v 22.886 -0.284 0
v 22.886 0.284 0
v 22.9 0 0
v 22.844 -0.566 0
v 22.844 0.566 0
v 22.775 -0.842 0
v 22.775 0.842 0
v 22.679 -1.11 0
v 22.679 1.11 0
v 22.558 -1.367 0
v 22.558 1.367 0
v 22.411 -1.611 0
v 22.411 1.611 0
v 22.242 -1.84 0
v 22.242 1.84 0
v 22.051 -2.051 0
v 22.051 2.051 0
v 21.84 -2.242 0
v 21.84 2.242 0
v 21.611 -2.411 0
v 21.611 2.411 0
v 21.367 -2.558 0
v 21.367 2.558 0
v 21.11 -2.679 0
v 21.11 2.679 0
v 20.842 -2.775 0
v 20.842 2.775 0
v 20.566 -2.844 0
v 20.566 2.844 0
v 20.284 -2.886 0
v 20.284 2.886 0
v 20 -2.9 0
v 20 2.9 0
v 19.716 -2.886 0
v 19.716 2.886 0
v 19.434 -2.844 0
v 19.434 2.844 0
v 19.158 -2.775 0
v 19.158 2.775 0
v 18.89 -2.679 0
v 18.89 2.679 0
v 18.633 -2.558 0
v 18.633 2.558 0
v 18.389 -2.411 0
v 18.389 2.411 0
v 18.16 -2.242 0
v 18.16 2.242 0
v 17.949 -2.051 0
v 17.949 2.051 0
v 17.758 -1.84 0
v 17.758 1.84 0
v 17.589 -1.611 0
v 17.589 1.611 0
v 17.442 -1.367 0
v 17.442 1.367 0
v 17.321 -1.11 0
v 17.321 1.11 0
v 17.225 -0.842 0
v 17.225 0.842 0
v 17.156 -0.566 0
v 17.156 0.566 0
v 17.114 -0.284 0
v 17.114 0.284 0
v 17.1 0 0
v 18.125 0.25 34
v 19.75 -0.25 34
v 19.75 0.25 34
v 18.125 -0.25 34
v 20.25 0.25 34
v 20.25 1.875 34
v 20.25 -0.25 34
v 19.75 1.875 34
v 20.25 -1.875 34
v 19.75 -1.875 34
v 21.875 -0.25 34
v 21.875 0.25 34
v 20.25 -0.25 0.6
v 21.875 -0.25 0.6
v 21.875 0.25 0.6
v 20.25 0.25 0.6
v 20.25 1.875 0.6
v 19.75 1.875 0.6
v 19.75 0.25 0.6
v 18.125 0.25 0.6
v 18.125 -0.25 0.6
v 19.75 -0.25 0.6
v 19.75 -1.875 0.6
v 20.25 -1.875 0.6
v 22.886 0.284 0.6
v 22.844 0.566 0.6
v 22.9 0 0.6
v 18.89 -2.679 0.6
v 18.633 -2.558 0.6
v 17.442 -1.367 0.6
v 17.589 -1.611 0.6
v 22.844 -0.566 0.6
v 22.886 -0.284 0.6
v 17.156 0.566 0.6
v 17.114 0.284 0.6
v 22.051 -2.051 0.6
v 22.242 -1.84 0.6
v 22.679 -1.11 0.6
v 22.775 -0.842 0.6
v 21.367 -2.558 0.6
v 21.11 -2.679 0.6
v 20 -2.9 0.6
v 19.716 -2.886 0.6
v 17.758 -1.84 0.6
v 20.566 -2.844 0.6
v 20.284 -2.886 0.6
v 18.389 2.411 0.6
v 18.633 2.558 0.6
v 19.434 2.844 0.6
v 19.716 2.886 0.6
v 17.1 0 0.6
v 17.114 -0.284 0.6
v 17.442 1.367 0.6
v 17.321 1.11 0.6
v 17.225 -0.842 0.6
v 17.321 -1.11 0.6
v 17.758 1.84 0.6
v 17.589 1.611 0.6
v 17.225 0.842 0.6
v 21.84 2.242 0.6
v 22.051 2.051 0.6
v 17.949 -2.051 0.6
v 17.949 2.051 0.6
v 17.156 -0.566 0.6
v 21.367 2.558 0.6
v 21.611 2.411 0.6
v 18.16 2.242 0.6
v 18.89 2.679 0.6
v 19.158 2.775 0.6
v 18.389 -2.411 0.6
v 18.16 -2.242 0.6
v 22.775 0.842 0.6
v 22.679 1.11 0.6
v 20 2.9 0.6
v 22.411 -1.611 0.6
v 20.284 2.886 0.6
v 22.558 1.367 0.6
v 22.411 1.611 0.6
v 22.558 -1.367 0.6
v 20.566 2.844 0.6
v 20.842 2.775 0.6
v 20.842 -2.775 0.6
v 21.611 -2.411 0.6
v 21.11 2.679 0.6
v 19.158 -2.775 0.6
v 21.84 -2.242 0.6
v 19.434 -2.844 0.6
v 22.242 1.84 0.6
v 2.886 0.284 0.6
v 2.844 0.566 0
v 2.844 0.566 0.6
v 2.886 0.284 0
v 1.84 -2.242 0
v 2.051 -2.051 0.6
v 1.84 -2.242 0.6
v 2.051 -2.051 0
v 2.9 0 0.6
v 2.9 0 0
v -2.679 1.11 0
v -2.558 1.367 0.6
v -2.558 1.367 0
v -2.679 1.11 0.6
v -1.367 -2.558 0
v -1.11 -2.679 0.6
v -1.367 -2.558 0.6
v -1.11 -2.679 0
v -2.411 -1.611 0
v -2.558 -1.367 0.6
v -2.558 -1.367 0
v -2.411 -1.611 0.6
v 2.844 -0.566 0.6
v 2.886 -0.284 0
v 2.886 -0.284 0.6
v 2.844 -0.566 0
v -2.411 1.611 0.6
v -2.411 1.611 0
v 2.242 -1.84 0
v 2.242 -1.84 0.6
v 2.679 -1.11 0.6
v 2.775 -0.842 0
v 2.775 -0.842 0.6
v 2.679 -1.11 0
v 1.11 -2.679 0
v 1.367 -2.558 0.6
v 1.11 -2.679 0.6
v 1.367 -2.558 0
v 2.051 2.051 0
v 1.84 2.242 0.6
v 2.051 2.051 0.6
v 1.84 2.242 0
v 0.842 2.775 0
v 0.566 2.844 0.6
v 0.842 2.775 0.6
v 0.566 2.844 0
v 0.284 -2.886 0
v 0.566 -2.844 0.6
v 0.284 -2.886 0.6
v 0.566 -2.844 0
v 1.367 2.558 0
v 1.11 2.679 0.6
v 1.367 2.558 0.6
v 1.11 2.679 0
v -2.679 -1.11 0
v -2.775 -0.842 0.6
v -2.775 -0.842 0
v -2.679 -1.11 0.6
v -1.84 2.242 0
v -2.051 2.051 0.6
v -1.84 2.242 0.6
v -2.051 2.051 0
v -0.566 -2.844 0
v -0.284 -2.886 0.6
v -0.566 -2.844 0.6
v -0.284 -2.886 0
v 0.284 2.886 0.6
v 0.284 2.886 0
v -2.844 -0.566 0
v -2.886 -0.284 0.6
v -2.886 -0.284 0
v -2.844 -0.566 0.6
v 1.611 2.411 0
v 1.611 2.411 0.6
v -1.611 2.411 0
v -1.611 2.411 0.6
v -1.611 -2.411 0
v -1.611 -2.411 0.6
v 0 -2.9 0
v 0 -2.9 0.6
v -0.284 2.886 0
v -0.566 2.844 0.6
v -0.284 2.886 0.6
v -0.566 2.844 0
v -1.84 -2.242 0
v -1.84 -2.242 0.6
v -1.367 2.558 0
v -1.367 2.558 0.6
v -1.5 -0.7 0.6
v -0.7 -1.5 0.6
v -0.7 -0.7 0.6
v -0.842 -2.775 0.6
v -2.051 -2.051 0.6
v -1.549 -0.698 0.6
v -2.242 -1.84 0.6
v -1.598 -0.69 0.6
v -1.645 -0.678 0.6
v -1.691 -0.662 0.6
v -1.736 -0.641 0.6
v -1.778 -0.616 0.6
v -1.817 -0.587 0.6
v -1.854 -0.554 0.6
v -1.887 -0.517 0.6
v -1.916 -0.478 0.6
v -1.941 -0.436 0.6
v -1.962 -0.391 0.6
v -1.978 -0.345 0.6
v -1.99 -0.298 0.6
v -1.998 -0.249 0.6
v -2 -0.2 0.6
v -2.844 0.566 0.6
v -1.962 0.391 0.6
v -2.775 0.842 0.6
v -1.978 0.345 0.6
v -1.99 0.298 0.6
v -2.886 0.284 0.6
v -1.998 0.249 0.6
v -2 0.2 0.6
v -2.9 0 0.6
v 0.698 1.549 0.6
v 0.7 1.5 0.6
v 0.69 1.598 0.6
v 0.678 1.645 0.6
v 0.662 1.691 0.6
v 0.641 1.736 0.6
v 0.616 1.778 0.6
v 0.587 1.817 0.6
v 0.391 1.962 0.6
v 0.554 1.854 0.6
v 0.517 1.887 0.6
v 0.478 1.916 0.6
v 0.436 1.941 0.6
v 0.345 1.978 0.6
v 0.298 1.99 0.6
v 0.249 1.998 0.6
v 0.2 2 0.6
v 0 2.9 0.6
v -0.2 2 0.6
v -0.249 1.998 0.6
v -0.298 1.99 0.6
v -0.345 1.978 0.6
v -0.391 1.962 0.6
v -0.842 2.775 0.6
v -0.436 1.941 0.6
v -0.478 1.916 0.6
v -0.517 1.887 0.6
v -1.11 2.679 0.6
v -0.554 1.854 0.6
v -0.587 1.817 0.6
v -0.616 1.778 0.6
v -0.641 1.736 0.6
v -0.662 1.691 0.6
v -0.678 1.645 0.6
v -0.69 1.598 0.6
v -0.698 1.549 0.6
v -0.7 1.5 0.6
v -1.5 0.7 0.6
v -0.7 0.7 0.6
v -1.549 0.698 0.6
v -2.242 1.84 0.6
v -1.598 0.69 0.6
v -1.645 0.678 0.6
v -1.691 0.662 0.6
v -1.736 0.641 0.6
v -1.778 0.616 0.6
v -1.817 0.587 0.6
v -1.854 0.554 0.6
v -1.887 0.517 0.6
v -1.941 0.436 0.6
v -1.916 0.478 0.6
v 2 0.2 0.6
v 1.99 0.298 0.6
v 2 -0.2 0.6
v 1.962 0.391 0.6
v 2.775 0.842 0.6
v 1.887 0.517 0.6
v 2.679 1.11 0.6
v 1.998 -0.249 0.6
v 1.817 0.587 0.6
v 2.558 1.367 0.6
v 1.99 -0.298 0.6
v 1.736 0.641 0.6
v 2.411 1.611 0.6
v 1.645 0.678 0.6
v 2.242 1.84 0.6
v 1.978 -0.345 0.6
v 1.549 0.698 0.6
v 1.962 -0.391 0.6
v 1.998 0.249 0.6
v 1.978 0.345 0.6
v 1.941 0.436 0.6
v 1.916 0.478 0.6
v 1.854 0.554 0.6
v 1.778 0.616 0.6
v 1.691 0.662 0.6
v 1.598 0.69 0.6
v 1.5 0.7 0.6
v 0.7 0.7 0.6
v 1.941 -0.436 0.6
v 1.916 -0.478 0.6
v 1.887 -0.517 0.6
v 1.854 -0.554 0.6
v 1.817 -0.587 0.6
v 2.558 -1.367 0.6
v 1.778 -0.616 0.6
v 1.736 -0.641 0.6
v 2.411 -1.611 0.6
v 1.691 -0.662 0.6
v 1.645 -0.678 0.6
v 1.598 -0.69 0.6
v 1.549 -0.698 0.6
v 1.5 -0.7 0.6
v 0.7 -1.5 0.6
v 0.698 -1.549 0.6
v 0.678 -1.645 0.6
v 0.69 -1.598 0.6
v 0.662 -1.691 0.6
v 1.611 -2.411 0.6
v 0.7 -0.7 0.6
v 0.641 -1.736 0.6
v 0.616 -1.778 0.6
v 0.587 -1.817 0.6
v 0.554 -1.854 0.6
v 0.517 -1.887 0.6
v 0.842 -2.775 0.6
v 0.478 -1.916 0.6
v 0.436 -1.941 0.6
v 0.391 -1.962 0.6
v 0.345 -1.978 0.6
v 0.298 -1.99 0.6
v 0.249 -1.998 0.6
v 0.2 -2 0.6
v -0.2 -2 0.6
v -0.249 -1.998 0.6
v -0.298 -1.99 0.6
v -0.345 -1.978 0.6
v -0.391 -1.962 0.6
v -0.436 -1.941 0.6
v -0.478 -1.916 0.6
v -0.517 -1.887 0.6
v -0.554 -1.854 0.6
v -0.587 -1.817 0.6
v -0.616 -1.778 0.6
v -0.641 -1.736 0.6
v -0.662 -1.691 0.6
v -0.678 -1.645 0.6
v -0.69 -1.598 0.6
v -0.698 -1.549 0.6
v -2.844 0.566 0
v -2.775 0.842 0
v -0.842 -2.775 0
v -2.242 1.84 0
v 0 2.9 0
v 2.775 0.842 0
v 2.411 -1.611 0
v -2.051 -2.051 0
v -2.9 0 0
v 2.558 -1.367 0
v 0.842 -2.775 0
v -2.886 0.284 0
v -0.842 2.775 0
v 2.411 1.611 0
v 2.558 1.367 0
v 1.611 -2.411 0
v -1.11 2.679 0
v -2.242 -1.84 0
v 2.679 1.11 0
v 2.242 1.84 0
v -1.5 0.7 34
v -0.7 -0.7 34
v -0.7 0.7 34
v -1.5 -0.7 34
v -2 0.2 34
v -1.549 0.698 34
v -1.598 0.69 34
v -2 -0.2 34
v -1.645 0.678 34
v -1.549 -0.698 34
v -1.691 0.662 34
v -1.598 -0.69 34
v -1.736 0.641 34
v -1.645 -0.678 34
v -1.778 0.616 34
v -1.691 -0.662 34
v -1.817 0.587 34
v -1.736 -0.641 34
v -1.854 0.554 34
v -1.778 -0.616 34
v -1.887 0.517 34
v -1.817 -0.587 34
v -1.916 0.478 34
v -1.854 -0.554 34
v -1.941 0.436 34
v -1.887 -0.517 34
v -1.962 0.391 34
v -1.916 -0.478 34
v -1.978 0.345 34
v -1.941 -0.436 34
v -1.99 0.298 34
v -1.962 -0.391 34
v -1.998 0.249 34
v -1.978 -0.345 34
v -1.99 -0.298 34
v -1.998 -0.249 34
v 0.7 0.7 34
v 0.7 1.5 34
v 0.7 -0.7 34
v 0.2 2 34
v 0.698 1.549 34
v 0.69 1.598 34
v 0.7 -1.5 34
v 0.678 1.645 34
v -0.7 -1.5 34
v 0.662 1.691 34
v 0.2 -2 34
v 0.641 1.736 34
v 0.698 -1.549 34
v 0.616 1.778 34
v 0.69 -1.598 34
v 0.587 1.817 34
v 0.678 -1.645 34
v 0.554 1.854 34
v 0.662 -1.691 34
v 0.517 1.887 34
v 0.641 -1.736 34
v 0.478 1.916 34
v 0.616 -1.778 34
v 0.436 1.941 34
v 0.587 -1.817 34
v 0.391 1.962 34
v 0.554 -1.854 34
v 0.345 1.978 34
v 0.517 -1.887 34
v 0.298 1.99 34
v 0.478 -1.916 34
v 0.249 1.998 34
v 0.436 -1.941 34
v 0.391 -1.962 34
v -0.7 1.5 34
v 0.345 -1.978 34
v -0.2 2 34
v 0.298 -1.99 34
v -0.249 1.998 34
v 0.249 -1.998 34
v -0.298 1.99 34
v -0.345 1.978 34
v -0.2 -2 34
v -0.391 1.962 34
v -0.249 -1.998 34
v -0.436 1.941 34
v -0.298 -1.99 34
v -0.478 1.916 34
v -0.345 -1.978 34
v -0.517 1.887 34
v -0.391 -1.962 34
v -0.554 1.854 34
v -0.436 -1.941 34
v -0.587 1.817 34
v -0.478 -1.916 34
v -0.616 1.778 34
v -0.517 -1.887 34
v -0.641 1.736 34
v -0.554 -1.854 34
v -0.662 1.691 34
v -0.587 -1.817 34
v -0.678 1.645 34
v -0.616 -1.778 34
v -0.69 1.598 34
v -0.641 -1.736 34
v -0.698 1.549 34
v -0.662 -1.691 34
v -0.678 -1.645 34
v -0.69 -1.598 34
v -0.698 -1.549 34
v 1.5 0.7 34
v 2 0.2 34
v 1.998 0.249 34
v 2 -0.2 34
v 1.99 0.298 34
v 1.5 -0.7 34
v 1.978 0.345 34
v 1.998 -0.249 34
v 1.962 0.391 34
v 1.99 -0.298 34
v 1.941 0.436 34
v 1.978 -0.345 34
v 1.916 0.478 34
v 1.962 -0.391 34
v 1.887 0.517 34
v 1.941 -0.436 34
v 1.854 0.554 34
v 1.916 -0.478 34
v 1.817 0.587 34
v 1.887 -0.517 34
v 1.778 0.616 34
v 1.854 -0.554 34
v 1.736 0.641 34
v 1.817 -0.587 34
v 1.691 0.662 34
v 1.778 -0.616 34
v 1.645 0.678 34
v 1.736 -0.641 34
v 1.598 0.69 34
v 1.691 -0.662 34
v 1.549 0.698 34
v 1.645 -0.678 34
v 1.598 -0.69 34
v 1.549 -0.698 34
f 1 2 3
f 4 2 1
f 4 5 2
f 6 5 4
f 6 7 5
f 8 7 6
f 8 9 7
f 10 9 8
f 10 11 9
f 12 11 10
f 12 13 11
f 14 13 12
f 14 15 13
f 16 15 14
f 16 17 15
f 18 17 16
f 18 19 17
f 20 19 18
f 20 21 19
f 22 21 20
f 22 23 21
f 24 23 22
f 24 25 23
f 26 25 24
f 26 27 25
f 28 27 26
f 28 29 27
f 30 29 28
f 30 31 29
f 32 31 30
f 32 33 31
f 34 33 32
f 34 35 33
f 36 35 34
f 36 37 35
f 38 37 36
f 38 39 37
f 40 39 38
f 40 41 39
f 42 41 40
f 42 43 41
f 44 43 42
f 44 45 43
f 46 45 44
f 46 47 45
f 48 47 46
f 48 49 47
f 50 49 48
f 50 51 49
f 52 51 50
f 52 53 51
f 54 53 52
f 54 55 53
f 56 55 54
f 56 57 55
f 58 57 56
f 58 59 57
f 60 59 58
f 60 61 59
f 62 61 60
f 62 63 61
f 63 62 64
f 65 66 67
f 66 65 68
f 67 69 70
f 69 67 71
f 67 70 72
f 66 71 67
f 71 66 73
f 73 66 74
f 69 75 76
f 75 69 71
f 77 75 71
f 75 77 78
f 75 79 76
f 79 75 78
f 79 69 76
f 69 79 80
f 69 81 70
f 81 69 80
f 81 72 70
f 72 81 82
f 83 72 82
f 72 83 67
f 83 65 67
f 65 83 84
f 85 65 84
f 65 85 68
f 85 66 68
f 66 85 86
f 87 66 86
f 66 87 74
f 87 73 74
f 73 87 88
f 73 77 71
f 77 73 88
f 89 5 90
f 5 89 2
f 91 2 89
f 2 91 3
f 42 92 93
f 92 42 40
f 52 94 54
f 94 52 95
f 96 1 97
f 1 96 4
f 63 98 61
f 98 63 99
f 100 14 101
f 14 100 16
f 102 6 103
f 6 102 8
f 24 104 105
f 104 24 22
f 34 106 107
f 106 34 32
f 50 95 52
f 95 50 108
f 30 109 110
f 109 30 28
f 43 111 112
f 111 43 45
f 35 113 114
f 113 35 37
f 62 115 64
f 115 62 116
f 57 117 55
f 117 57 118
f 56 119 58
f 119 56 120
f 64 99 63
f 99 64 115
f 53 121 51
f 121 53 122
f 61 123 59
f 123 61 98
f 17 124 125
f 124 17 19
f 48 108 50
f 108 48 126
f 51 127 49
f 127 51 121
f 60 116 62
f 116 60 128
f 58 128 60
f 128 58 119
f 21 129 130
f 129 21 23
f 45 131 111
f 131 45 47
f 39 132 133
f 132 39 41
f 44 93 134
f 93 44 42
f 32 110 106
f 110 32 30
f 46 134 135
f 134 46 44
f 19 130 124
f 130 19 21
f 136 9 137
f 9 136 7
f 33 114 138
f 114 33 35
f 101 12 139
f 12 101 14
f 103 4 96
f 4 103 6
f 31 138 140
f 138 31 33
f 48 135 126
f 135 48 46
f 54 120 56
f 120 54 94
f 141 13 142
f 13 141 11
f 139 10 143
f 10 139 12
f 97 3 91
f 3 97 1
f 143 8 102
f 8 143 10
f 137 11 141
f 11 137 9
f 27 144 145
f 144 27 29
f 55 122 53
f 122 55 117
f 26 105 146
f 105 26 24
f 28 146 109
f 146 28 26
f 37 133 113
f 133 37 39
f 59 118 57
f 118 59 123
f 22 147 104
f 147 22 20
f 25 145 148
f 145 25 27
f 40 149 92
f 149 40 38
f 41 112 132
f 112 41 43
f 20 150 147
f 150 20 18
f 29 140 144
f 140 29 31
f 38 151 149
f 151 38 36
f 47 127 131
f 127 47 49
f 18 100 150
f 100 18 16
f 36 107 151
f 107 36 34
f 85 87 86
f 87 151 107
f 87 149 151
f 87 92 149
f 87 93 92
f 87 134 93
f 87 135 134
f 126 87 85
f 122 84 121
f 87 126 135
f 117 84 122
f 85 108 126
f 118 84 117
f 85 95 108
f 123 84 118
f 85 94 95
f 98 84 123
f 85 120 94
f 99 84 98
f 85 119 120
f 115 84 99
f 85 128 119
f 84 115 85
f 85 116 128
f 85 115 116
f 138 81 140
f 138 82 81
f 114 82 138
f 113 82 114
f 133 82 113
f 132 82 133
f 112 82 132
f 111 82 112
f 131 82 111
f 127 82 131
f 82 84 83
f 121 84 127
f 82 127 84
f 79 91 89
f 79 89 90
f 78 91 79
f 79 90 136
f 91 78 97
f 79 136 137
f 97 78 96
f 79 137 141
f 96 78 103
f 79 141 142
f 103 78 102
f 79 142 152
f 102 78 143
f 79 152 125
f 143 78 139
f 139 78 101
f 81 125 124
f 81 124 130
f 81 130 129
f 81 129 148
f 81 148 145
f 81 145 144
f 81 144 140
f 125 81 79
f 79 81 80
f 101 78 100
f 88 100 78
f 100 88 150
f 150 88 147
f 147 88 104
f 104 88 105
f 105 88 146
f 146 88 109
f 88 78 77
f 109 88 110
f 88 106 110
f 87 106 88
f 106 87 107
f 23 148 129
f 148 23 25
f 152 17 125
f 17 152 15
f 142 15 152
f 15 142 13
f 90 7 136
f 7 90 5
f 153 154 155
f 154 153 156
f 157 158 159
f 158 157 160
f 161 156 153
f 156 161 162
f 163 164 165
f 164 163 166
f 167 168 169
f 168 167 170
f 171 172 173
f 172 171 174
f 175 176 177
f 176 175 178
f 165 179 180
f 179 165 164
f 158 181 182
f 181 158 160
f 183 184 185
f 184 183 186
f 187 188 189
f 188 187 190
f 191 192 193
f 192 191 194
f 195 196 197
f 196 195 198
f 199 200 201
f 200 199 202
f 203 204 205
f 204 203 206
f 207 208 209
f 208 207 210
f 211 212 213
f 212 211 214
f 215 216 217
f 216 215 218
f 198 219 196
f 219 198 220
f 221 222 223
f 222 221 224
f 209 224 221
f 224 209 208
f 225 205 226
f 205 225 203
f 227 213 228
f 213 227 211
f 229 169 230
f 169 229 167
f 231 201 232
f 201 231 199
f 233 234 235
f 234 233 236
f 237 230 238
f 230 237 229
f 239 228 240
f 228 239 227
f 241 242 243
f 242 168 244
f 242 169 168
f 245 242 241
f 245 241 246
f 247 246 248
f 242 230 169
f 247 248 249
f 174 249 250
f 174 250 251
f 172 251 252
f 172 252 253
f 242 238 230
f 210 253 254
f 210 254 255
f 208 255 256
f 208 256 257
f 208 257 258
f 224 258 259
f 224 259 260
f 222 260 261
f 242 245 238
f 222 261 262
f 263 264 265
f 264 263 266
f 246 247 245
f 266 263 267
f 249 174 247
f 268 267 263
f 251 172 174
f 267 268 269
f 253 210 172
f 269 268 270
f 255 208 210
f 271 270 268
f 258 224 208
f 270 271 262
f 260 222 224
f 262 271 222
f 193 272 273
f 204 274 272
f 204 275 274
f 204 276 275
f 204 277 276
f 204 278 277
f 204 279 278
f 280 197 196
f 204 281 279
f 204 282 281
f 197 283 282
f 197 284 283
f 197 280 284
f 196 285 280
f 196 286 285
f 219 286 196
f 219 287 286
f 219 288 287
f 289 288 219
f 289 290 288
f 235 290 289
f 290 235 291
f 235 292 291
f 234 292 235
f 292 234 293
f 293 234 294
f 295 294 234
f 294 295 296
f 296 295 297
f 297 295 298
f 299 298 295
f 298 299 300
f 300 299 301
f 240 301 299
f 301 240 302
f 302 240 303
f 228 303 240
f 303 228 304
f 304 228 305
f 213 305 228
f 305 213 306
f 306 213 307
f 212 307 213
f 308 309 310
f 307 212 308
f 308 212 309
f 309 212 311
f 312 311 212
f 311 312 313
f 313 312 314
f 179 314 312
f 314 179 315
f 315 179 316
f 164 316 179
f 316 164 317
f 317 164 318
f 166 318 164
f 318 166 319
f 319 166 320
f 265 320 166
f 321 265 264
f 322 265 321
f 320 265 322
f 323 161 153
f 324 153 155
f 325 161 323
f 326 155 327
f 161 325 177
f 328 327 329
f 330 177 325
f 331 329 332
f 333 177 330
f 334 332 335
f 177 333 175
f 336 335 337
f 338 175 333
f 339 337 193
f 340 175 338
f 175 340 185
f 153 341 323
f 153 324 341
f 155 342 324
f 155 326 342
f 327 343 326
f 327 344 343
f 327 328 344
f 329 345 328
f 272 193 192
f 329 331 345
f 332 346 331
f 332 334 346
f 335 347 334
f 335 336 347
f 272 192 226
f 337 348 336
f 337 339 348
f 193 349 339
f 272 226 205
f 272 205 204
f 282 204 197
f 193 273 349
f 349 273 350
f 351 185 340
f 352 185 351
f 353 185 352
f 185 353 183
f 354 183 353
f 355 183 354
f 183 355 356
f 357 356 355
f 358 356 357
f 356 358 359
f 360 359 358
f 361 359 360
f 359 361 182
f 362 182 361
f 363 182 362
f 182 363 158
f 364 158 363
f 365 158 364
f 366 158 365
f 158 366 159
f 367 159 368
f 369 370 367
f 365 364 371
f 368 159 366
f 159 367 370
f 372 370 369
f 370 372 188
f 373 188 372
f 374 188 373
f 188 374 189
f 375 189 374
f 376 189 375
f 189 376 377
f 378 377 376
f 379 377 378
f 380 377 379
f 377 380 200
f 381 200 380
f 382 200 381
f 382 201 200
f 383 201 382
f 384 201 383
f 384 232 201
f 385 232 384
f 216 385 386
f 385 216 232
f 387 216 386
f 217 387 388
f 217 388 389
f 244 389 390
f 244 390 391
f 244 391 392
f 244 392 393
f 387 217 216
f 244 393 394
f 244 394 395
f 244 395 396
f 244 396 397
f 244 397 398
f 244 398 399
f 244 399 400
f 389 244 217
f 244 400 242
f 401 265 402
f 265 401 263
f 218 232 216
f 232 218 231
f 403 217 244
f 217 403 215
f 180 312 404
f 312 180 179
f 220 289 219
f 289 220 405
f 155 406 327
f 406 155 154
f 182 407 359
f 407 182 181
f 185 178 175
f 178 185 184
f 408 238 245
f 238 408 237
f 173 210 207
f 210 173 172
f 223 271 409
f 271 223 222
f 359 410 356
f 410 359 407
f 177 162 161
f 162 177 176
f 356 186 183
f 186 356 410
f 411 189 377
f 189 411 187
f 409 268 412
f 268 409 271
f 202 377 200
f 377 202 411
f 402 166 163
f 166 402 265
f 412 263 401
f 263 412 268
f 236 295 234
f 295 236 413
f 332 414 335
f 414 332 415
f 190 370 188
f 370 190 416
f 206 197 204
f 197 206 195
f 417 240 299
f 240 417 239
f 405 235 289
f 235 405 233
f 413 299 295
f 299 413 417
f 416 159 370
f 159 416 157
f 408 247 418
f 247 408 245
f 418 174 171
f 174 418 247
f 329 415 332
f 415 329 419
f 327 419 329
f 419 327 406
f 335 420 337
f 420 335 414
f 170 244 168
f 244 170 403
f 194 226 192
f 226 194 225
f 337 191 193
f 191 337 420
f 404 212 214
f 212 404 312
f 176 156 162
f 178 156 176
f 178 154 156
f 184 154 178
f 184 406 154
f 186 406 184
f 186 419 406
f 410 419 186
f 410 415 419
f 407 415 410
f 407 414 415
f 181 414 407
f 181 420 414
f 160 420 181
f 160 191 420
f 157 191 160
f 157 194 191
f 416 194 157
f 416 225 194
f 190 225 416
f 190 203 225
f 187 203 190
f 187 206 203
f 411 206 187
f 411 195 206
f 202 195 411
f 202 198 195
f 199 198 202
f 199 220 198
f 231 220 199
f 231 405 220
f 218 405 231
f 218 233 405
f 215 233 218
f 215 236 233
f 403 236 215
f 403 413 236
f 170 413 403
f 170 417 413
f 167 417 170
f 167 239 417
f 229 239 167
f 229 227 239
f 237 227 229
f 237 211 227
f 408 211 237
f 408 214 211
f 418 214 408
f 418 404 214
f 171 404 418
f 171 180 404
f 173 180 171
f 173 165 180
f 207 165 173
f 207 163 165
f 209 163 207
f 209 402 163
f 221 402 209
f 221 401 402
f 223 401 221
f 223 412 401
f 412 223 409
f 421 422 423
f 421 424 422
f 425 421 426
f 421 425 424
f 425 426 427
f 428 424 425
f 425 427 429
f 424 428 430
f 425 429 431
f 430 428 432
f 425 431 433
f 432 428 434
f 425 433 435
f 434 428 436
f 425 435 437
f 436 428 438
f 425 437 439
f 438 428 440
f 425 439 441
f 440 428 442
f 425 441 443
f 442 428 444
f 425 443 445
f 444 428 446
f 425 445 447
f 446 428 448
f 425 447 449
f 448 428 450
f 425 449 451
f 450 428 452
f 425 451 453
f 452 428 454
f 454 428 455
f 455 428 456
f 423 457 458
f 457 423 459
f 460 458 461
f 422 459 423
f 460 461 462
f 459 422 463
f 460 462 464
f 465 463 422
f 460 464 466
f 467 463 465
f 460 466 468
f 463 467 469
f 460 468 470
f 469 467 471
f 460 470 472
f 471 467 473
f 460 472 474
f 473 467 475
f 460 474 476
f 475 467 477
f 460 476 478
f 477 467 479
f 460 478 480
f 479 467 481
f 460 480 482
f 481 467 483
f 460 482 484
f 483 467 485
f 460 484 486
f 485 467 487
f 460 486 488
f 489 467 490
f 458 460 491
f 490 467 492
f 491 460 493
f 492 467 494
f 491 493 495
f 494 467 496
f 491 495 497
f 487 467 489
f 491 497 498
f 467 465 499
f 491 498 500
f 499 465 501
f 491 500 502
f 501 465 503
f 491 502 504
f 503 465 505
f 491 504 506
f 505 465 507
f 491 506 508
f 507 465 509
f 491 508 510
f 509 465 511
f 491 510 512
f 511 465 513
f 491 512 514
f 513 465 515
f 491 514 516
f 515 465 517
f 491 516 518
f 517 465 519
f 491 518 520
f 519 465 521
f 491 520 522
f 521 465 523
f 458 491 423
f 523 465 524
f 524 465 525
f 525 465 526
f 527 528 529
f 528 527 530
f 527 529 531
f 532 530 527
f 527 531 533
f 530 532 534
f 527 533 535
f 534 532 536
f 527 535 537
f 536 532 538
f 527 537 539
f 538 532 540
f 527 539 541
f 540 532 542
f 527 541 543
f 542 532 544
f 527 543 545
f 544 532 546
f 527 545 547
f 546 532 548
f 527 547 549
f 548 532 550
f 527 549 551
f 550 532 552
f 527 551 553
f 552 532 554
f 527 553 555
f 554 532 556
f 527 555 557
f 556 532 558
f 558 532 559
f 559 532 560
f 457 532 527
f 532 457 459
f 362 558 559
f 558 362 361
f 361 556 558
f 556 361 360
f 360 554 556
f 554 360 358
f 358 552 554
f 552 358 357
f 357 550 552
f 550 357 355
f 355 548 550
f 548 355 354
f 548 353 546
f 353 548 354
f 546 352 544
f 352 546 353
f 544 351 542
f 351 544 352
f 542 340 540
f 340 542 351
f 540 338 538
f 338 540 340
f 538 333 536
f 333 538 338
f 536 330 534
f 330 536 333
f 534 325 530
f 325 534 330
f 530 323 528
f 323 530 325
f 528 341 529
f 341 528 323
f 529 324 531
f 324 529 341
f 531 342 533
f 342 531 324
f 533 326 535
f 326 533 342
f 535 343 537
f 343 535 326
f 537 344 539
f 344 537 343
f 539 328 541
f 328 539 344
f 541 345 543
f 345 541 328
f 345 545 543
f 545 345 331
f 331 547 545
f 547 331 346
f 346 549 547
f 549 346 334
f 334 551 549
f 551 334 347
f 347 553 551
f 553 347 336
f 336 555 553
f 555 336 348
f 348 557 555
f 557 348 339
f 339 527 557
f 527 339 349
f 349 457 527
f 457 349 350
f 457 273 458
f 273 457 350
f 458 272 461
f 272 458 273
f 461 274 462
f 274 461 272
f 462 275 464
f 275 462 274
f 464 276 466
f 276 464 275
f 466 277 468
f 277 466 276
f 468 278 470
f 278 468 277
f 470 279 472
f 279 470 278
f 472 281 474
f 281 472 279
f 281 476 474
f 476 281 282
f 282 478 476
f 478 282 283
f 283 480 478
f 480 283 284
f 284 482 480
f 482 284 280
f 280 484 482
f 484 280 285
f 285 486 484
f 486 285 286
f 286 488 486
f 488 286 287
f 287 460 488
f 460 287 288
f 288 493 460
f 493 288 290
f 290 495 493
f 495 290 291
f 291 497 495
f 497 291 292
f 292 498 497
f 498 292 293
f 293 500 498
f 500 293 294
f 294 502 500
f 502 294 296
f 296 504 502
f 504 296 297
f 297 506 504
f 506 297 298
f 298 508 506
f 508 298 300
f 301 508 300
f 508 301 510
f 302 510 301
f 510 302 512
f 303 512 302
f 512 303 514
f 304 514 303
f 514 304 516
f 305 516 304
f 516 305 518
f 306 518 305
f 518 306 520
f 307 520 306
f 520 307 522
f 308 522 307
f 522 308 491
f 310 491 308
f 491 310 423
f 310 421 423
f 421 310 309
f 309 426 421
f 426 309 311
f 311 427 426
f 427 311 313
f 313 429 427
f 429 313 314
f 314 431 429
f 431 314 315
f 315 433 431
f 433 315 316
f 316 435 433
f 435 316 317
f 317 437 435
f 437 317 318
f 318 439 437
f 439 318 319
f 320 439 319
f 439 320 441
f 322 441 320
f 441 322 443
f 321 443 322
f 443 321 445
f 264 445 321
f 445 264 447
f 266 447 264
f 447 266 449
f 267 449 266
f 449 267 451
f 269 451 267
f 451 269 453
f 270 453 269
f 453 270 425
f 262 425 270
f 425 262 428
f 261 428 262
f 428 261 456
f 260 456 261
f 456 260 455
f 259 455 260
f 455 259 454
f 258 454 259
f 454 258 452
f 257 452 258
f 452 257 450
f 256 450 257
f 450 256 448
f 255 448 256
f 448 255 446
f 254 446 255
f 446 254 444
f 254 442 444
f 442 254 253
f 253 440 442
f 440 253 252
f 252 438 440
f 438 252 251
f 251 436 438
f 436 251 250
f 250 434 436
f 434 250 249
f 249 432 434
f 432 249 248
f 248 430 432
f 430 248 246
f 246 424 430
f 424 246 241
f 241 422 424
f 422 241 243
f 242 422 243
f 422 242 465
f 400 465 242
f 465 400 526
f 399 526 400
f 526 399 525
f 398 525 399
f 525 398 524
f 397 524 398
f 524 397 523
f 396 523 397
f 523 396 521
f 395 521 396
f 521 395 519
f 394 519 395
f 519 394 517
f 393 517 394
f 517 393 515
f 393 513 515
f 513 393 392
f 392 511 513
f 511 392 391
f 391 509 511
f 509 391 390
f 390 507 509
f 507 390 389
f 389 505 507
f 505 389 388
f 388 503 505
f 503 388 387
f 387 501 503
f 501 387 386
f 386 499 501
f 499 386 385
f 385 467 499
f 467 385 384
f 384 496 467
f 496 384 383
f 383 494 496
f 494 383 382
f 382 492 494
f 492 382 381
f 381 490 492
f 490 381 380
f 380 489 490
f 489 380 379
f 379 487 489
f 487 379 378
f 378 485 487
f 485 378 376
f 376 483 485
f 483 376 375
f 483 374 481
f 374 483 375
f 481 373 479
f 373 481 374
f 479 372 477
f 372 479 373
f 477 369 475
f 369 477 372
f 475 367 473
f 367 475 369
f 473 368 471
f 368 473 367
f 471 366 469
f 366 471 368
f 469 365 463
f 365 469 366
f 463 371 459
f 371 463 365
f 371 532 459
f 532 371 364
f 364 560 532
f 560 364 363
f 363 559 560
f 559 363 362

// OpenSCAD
base_h = 0.60;
h = 34.00;
r = 5.80 / 2;

$fn = 64;

m = 0.50;
b = 4.75 - m * 2;
w = 1.50 - m * 2;
s = 0.80;

linear_extrude(base_h)
    circle(r);
    
linear_extrude(h) {
    minkowski() {
        union() {
            square([b * s, w * s], center = true);
            square([w * s, b * s], center = true);
        }
        circle(m);
    }
}

translate([20, 0, 0]) {
    linear_extrude(h) {
            square([b, w], center = true);
            square([w, b], center = true);
    }
    
    linear_extrude(base_h)
        circle(r);
}
